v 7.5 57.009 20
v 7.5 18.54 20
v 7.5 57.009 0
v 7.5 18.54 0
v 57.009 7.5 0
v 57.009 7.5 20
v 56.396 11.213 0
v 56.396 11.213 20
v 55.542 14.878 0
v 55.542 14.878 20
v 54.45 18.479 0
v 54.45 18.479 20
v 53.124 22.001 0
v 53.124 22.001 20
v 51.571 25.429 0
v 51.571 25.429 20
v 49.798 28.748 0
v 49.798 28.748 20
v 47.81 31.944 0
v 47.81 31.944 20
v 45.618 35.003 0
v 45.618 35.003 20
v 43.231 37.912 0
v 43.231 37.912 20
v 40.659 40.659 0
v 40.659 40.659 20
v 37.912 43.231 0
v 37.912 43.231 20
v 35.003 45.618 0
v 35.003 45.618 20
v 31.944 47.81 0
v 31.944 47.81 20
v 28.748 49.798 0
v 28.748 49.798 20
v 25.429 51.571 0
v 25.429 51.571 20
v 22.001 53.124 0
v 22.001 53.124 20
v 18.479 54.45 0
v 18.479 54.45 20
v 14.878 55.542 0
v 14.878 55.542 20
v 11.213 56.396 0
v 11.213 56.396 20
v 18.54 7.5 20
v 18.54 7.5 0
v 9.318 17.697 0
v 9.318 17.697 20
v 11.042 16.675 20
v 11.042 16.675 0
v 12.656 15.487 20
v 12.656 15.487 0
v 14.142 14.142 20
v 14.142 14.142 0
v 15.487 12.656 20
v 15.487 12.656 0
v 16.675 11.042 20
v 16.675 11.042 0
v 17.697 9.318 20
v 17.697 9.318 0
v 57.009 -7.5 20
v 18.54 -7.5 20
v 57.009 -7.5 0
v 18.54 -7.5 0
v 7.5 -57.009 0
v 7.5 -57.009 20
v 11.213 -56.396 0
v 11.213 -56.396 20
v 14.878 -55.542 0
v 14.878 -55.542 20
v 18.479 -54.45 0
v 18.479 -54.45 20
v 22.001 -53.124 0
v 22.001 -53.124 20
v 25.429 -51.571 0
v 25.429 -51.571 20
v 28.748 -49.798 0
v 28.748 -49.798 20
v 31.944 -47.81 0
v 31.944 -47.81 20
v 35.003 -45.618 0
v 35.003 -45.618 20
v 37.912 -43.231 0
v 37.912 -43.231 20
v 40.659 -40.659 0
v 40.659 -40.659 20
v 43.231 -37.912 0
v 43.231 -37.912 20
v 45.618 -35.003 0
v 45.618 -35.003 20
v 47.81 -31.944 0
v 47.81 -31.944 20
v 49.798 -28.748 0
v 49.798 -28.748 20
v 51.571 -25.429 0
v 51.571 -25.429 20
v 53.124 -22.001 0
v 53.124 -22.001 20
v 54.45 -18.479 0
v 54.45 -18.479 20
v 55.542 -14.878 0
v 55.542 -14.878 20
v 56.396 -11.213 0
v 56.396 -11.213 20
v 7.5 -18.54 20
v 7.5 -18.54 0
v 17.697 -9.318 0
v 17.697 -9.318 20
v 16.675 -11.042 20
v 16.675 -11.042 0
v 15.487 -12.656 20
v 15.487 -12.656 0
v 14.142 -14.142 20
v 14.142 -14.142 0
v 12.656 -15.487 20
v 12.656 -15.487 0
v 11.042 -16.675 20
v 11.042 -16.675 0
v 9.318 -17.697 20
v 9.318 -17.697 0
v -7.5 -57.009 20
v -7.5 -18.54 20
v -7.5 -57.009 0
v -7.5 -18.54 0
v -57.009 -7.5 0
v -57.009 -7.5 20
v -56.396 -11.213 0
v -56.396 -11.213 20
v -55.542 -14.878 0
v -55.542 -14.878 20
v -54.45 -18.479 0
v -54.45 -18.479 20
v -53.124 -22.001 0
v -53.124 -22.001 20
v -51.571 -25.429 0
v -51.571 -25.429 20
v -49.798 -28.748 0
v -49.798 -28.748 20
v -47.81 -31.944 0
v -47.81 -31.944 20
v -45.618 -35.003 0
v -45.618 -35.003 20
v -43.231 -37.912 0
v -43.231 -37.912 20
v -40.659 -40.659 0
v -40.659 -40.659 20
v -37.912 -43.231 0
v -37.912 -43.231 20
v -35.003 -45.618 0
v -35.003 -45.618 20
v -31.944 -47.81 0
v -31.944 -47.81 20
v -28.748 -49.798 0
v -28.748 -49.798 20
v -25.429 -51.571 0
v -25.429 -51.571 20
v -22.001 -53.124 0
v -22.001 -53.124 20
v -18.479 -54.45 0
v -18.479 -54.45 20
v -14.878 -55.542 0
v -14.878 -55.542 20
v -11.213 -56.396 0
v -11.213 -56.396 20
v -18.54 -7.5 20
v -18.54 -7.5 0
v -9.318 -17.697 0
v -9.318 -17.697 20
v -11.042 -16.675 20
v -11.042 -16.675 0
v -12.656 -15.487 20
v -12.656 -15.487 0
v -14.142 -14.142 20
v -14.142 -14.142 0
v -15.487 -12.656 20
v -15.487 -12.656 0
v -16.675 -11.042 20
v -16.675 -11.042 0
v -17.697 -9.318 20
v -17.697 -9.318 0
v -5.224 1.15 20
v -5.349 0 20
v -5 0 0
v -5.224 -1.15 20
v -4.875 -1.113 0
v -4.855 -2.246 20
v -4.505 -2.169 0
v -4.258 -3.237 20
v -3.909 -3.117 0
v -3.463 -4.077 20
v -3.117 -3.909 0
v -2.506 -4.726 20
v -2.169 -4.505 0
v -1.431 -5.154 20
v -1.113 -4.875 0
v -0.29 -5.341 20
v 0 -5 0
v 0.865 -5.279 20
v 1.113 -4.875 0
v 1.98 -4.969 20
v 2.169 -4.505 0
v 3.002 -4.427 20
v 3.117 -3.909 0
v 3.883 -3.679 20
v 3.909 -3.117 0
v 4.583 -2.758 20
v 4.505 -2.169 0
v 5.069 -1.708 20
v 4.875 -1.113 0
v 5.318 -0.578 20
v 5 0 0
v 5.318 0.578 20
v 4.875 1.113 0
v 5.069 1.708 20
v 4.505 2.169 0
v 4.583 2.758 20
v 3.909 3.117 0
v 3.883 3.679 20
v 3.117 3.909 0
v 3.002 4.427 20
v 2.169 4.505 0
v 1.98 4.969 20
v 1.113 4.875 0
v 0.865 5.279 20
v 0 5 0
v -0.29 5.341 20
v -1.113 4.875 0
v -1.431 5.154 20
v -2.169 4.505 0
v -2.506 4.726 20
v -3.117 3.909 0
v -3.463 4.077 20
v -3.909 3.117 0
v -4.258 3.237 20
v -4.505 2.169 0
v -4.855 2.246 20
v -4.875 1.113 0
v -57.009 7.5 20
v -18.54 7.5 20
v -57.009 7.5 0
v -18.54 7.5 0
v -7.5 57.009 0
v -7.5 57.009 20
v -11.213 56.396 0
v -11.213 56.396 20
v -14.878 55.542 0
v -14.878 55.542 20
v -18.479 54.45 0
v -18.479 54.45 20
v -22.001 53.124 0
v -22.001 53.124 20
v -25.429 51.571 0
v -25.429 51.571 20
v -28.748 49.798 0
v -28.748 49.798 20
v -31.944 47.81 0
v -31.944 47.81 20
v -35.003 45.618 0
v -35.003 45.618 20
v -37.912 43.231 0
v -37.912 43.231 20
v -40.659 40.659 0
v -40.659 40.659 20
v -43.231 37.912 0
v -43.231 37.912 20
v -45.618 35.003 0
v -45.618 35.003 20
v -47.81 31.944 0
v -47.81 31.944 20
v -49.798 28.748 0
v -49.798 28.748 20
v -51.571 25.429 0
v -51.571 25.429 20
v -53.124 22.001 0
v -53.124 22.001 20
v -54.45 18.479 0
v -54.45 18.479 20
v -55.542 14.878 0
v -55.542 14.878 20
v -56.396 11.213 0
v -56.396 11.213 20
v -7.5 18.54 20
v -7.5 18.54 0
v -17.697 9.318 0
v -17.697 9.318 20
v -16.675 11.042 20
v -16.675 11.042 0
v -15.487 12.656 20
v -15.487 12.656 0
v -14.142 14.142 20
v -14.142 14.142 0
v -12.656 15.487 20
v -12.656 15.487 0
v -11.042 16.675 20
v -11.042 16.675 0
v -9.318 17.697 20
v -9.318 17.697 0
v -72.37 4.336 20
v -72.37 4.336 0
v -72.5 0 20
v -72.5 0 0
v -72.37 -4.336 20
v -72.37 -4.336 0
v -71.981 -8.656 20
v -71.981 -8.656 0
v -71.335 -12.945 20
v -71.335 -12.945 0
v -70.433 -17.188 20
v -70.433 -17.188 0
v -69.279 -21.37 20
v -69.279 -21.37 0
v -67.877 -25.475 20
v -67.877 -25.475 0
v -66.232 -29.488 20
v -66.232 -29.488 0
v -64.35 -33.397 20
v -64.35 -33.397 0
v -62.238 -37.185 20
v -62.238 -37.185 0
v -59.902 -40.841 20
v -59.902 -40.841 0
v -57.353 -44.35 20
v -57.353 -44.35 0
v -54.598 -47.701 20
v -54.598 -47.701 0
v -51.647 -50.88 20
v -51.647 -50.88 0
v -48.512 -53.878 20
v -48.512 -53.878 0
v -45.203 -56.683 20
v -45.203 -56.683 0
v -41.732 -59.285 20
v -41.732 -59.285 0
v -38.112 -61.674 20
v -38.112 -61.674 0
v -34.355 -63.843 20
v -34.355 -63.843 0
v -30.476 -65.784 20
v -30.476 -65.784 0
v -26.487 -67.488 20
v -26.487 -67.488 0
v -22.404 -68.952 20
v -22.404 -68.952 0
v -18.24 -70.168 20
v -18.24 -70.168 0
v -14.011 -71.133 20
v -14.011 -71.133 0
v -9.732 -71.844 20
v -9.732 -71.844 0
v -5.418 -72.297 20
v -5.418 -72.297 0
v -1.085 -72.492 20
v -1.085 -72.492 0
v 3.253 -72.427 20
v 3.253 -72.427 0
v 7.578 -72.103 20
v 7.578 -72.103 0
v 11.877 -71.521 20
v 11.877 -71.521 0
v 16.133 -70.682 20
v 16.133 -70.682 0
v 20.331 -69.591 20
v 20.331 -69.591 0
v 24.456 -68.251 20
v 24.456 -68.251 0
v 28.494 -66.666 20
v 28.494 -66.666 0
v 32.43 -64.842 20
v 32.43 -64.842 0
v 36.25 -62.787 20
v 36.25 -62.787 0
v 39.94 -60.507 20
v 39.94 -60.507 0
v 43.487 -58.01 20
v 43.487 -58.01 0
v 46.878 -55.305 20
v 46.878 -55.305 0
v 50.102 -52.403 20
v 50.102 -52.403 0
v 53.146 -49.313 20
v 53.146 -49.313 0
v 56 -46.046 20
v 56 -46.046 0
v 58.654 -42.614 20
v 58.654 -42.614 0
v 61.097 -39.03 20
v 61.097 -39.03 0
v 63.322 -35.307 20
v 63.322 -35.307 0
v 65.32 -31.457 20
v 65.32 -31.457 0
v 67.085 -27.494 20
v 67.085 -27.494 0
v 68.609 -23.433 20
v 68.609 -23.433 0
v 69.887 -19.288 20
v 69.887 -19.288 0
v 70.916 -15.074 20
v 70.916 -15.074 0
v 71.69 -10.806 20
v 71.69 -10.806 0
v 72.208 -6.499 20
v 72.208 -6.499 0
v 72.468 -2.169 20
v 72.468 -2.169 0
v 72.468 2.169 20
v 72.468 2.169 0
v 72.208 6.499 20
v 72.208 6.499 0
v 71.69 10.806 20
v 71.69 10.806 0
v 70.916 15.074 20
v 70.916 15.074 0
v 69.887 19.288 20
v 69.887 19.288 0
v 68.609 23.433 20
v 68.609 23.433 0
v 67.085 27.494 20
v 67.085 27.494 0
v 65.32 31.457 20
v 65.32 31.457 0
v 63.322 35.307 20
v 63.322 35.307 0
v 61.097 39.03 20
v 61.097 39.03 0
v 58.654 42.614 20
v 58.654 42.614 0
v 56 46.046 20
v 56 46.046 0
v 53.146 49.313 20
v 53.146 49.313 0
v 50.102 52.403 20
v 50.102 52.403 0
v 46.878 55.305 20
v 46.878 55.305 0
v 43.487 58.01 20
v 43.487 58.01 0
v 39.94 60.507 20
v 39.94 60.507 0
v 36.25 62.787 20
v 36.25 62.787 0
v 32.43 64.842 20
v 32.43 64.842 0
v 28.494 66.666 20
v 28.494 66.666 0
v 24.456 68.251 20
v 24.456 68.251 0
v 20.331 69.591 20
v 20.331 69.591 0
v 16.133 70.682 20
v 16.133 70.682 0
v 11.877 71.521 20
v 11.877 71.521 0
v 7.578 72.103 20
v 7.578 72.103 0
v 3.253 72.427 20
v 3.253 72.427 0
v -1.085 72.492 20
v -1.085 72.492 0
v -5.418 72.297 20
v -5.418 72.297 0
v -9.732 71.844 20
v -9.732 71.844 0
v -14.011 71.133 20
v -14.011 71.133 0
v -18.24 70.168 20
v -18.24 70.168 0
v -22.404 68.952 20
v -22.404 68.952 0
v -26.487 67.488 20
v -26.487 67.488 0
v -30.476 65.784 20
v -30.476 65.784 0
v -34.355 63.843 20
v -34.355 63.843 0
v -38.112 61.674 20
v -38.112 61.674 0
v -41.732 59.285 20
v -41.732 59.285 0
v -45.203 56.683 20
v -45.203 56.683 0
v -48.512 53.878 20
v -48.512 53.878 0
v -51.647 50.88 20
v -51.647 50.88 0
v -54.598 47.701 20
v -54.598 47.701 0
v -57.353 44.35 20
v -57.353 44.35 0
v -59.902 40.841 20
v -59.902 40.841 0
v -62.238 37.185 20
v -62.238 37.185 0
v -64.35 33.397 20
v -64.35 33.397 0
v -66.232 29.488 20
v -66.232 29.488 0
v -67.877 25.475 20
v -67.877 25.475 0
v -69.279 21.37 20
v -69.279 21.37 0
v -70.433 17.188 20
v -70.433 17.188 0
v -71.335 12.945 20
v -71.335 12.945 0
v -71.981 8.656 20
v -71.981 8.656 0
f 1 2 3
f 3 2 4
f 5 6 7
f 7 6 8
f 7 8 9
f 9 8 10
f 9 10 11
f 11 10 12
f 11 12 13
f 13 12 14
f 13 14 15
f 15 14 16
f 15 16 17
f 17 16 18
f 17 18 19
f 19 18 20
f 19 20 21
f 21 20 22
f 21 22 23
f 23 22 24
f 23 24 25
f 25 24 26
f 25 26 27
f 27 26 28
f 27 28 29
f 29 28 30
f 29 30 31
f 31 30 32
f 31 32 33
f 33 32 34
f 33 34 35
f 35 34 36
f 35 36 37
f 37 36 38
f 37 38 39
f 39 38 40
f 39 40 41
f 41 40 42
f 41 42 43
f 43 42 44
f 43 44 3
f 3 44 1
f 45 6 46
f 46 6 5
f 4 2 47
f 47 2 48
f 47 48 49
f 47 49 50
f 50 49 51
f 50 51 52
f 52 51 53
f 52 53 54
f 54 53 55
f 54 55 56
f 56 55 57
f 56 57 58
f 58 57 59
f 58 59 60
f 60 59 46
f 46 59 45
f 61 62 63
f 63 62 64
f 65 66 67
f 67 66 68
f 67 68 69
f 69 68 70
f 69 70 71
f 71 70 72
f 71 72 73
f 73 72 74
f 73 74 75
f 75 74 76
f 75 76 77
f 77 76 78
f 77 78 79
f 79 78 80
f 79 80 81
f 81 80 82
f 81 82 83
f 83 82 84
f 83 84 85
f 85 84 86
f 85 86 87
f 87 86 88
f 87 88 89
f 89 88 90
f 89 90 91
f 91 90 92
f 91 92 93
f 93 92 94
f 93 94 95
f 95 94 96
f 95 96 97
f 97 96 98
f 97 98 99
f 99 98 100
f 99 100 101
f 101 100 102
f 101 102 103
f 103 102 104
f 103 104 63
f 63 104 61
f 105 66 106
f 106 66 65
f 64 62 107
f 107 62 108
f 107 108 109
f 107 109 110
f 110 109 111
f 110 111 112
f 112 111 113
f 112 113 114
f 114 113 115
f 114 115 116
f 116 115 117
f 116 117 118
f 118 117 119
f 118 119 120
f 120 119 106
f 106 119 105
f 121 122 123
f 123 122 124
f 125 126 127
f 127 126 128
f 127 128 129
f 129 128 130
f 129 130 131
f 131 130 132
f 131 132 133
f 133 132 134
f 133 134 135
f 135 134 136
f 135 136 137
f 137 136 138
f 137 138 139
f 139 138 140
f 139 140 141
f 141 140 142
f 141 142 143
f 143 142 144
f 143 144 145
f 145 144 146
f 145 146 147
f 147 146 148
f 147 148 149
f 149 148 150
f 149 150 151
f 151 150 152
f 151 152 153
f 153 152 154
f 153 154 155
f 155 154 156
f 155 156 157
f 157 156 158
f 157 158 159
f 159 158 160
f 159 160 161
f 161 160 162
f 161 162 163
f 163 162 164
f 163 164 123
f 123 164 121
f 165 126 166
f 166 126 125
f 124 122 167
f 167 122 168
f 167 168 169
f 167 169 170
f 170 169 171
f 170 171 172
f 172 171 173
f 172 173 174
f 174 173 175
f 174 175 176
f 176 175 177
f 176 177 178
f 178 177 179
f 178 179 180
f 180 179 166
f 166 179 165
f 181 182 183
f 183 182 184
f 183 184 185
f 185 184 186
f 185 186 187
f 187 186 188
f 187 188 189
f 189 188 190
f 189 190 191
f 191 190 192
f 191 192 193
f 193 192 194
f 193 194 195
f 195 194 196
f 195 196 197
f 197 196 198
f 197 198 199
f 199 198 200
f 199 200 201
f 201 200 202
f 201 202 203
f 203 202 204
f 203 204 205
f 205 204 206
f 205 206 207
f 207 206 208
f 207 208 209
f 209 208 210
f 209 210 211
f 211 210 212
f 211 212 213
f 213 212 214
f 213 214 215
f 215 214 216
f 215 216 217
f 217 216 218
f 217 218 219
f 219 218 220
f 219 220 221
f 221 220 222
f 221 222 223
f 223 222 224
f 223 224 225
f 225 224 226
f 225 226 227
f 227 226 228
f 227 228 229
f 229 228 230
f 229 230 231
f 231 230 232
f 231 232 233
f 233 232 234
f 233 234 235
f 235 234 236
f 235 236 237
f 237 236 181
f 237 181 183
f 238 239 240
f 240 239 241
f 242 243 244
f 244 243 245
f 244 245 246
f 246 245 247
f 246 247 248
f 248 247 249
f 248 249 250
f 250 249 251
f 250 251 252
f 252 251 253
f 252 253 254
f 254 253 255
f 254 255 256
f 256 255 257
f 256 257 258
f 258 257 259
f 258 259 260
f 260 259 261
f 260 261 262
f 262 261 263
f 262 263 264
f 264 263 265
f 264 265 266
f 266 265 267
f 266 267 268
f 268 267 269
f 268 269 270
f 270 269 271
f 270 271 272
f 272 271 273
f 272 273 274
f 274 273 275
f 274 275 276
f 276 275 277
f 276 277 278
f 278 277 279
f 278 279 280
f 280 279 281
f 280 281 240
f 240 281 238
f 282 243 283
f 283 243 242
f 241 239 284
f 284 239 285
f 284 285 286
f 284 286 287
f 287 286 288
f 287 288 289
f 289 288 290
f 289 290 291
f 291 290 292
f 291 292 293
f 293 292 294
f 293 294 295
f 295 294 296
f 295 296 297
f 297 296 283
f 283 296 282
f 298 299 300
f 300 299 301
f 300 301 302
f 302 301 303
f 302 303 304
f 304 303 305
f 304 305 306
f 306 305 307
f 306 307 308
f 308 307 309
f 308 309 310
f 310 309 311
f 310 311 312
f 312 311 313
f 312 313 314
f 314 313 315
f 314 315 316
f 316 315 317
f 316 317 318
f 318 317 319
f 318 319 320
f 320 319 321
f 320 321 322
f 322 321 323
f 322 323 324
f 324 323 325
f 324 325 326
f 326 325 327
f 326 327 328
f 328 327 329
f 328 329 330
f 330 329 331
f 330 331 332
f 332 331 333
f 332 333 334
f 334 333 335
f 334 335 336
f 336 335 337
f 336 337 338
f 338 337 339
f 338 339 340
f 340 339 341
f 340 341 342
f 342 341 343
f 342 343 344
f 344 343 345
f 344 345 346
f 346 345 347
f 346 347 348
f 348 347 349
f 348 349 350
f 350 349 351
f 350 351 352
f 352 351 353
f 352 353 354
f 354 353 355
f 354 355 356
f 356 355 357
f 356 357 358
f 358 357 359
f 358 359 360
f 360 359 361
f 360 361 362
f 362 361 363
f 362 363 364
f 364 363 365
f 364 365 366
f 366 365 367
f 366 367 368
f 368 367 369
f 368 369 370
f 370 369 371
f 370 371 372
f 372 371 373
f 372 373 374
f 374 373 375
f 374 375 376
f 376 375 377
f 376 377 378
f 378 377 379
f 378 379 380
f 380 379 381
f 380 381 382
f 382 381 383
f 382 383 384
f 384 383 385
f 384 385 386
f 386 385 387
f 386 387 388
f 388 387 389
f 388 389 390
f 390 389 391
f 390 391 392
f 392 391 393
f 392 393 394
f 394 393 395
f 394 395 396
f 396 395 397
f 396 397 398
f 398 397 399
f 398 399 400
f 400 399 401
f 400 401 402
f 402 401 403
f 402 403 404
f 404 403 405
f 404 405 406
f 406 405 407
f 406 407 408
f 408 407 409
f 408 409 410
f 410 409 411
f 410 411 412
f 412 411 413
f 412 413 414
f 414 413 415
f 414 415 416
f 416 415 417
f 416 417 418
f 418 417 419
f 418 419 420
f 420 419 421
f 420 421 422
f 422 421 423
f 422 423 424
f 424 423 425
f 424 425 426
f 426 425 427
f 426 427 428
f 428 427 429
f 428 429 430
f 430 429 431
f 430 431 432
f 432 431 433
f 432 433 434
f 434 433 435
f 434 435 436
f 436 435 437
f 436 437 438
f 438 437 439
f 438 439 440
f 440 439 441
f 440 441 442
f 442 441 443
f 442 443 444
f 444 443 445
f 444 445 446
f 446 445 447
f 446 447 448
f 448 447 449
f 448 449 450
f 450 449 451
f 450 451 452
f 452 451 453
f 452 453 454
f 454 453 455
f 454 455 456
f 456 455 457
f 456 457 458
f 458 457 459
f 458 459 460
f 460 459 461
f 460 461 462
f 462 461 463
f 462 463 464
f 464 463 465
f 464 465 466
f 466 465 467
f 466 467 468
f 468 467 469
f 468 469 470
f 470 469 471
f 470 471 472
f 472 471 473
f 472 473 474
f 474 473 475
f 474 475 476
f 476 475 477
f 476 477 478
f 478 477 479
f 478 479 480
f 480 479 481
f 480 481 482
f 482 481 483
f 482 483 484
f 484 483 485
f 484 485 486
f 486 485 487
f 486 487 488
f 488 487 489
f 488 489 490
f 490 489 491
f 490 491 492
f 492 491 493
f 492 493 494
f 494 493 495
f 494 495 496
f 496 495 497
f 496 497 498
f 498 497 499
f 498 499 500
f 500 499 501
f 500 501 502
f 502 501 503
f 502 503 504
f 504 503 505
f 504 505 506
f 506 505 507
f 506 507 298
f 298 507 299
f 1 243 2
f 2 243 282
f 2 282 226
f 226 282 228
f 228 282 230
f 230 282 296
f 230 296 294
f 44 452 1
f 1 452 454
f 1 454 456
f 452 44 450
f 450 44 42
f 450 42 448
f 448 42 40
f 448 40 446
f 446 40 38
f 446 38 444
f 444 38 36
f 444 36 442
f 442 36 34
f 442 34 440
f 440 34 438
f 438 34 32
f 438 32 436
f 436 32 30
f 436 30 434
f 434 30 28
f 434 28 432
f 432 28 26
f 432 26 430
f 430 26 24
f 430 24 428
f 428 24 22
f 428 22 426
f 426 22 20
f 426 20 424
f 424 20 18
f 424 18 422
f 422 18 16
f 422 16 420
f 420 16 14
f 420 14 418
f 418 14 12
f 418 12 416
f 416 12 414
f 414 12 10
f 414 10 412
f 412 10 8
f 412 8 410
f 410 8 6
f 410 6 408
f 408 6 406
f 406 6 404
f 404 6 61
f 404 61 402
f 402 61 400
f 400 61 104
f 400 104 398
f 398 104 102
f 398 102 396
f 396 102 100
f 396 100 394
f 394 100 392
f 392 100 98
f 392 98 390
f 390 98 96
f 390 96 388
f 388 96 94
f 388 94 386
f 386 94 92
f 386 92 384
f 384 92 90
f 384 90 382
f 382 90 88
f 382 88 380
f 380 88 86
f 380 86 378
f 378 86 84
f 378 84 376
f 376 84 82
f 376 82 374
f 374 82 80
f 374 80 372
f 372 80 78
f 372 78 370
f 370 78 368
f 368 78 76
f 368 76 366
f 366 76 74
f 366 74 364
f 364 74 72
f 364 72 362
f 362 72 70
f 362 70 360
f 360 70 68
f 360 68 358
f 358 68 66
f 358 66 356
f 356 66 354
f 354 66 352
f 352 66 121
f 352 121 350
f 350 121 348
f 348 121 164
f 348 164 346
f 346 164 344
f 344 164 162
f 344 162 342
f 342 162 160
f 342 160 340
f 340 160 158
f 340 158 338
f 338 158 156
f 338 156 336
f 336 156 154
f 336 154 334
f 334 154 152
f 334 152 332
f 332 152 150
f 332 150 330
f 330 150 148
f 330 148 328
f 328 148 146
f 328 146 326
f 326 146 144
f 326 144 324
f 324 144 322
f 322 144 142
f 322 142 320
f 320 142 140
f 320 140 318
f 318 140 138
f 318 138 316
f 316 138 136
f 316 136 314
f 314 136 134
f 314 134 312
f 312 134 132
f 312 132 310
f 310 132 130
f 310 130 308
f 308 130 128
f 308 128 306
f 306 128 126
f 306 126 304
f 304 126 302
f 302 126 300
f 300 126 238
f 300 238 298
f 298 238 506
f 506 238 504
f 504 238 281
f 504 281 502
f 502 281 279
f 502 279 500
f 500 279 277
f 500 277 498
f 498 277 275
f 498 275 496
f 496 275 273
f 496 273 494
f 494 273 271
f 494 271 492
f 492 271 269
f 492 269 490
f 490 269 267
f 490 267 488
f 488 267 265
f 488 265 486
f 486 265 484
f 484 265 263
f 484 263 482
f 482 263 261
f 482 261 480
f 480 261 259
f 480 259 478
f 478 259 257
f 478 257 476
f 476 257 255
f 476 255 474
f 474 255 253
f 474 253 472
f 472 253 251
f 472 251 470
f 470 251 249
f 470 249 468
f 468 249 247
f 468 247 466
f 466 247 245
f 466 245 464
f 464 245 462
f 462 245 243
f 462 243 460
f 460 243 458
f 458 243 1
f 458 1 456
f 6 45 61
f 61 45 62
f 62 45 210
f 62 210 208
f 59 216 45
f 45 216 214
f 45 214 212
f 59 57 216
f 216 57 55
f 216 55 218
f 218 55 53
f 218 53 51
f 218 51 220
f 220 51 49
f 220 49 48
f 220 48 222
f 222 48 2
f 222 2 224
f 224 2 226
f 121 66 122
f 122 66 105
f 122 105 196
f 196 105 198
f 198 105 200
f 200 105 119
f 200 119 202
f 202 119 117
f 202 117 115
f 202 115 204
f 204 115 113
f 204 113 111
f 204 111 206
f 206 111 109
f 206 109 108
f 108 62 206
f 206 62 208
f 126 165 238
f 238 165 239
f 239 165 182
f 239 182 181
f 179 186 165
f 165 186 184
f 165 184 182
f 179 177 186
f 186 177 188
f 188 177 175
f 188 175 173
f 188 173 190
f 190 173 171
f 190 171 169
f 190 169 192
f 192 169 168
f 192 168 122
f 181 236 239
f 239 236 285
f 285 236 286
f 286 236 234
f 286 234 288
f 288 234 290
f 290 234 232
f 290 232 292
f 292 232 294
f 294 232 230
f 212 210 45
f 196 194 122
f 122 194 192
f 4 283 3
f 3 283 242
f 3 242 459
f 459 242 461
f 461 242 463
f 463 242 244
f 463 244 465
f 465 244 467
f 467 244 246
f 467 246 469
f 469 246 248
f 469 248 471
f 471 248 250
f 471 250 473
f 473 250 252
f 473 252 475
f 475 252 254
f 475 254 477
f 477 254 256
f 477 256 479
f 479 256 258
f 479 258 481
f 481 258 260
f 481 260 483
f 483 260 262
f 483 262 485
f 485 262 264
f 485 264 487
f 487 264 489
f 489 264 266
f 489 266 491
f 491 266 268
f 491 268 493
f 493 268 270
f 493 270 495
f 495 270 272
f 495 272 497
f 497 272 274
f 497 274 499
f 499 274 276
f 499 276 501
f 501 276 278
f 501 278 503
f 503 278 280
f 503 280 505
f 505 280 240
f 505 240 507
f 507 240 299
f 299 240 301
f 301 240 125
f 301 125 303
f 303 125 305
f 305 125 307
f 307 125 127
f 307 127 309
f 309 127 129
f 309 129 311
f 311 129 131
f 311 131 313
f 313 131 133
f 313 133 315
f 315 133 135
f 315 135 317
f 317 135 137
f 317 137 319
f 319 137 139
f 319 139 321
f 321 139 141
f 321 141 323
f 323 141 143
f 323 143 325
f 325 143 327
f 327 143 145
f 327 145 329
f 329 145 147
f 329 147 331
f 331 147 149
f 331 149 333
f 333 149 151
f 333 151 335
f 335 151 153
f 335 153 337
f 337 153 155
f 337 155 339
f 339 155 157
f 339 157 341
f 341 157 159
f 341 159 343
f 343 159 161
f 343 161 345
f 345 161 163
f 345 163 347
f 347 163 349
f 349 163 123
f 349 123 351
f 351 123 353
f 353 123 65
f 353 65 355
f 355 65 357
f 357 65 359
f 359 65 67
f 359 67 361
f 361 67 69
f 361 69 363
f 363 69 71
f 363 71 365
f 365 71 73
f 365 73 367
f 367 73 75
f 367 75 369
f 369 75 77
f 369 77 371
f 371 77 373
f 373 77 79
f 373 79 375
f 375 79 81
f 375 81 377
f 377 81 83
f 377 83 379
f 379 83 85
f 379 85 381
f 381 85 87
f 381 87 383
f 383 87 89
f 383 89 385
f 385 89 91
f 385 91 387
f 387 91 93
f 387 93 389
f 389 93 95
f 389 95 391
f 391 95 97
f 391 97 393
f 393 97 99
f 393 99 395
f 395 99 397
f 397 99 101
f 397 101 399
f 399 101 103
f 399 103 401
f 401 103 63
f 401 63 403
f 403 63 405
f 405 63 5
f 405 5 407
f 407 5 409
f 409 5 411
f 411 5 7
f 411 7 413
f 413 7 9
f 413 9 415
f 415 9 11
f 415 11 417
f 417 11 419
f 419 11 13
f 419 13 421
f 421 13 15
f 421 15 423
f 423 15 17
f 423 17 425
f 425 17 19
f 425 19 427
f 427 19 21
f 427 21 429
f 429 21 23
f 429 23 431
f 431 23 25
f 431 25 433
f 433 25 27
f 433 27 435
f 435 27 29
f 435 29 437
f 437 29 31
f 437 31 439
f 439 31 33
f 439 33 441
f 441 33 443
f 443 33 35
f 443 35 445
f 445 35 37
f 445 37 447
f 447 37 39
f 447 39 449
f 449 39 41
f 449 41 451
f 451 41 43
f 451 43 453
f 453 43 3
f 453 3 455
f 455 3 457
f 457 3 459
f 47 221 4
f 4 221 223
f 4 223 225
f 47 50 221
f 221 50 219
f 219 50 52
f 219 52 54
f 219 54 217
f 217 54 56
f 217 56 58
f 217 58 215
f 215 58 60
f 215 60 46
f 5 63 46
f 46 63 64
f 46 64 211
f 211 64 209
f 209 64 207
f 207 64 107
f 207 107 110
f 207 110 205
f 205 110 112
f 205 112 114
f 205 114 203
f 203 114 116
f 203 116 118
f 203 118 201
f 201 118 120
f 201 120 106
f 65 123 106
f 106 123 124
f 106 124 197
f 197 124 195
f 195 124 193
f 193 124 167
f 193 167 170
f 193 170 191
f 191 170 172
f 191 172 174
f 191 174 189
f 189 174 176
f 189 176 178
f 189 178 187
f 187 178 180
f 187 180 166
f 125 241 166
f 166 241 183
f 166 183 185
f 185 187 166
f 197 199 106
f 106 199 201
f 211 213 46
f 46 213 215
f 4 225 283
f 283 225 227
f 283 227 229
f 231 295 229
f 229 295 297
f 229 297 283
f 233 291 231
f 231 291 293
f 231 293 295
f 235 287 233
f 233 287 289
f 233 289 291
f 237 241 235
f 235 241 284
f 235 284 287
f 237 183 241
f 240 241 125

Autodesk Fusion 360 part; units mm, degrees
sketch "Sketch1" plane through (0, 0, 0) normal (0, 0, 1) x (1, 0, 0)
  circle A0 centre (0, 0) radius 72.5
  line L0 (0, 0) -> (-170.1079, 0) construction
  arc A1 (-7.5, 57.0088) -> (-57.0088, 7.5) centre (0, 0) ccw
  line L1 (0, 0) -> (0, 73.0172) construction
  line L2 (-57.0088, 7.5) -> (-18.5405, 7.5)
  line L3 (-7.5, 57.0088) -> (-7.5, 18.5405)
  circle A2 centre (0, 0) radius 5
  arc A3 (-7.5, 18.5405) -> (-18.5405, 7.5) centre (0, 0) ccw
  dimension "d2" = 145
  dimension "d9" = 90
  dimension "d10" = 7.5
  dimension "d11" = 7.5
  dimension "d12" = 15
  dimension "d13" = 10
  dimension "d15" = 15
extrude "Extrude1" add sketch "Sketch1" along normal blind 20 contours A0 | A1 L2 L3 A3 | A2
extrude "Extrude2" cut sketch "Sketch1" along normal up to surface (20 mm away) contours A1 L2 L3 A3
extrude "Extrude3" cut sketch "Sketch1" along normal up to surface (20 mm away) draft 1 contours A2
pattern_circular "C-Pattern1" count 4 over 360 about axis through (0, 0, 1.75) along (0, 0, 1) of "Extrude2"
equation "d2 = OverallDiameter"
equation "HubHoleDiameter = 10 mm" comment "Center hole diameter"
equation "HubWallThickness = 15 mm"
equation "NumberOfSPokes = 4"
equation "OverallDiameter = 145 mm" comment "Outside Diameter of the entire part"
equation "PartHeight = 20 mm"
equation "d9 = ( 360 / NumberOfSPokes ) * 1 deg"
equation "d10 = HubWallThickness / 2"
equation "d11 = HubWallThickness / 2"
equation "d12 = HubWallThickness"
equation "d13 = HubHoleDiameter"
equation "d15 = HubWallThickness"
equation "d16 = PartHeight"
equation "HubHoleTaperAngle = 1 deg" comment "Positive values taper outward. Negative inward"
equation "d22 = HubHoleTaperAngle"
equation "d23 = NumberOfSPokes"
